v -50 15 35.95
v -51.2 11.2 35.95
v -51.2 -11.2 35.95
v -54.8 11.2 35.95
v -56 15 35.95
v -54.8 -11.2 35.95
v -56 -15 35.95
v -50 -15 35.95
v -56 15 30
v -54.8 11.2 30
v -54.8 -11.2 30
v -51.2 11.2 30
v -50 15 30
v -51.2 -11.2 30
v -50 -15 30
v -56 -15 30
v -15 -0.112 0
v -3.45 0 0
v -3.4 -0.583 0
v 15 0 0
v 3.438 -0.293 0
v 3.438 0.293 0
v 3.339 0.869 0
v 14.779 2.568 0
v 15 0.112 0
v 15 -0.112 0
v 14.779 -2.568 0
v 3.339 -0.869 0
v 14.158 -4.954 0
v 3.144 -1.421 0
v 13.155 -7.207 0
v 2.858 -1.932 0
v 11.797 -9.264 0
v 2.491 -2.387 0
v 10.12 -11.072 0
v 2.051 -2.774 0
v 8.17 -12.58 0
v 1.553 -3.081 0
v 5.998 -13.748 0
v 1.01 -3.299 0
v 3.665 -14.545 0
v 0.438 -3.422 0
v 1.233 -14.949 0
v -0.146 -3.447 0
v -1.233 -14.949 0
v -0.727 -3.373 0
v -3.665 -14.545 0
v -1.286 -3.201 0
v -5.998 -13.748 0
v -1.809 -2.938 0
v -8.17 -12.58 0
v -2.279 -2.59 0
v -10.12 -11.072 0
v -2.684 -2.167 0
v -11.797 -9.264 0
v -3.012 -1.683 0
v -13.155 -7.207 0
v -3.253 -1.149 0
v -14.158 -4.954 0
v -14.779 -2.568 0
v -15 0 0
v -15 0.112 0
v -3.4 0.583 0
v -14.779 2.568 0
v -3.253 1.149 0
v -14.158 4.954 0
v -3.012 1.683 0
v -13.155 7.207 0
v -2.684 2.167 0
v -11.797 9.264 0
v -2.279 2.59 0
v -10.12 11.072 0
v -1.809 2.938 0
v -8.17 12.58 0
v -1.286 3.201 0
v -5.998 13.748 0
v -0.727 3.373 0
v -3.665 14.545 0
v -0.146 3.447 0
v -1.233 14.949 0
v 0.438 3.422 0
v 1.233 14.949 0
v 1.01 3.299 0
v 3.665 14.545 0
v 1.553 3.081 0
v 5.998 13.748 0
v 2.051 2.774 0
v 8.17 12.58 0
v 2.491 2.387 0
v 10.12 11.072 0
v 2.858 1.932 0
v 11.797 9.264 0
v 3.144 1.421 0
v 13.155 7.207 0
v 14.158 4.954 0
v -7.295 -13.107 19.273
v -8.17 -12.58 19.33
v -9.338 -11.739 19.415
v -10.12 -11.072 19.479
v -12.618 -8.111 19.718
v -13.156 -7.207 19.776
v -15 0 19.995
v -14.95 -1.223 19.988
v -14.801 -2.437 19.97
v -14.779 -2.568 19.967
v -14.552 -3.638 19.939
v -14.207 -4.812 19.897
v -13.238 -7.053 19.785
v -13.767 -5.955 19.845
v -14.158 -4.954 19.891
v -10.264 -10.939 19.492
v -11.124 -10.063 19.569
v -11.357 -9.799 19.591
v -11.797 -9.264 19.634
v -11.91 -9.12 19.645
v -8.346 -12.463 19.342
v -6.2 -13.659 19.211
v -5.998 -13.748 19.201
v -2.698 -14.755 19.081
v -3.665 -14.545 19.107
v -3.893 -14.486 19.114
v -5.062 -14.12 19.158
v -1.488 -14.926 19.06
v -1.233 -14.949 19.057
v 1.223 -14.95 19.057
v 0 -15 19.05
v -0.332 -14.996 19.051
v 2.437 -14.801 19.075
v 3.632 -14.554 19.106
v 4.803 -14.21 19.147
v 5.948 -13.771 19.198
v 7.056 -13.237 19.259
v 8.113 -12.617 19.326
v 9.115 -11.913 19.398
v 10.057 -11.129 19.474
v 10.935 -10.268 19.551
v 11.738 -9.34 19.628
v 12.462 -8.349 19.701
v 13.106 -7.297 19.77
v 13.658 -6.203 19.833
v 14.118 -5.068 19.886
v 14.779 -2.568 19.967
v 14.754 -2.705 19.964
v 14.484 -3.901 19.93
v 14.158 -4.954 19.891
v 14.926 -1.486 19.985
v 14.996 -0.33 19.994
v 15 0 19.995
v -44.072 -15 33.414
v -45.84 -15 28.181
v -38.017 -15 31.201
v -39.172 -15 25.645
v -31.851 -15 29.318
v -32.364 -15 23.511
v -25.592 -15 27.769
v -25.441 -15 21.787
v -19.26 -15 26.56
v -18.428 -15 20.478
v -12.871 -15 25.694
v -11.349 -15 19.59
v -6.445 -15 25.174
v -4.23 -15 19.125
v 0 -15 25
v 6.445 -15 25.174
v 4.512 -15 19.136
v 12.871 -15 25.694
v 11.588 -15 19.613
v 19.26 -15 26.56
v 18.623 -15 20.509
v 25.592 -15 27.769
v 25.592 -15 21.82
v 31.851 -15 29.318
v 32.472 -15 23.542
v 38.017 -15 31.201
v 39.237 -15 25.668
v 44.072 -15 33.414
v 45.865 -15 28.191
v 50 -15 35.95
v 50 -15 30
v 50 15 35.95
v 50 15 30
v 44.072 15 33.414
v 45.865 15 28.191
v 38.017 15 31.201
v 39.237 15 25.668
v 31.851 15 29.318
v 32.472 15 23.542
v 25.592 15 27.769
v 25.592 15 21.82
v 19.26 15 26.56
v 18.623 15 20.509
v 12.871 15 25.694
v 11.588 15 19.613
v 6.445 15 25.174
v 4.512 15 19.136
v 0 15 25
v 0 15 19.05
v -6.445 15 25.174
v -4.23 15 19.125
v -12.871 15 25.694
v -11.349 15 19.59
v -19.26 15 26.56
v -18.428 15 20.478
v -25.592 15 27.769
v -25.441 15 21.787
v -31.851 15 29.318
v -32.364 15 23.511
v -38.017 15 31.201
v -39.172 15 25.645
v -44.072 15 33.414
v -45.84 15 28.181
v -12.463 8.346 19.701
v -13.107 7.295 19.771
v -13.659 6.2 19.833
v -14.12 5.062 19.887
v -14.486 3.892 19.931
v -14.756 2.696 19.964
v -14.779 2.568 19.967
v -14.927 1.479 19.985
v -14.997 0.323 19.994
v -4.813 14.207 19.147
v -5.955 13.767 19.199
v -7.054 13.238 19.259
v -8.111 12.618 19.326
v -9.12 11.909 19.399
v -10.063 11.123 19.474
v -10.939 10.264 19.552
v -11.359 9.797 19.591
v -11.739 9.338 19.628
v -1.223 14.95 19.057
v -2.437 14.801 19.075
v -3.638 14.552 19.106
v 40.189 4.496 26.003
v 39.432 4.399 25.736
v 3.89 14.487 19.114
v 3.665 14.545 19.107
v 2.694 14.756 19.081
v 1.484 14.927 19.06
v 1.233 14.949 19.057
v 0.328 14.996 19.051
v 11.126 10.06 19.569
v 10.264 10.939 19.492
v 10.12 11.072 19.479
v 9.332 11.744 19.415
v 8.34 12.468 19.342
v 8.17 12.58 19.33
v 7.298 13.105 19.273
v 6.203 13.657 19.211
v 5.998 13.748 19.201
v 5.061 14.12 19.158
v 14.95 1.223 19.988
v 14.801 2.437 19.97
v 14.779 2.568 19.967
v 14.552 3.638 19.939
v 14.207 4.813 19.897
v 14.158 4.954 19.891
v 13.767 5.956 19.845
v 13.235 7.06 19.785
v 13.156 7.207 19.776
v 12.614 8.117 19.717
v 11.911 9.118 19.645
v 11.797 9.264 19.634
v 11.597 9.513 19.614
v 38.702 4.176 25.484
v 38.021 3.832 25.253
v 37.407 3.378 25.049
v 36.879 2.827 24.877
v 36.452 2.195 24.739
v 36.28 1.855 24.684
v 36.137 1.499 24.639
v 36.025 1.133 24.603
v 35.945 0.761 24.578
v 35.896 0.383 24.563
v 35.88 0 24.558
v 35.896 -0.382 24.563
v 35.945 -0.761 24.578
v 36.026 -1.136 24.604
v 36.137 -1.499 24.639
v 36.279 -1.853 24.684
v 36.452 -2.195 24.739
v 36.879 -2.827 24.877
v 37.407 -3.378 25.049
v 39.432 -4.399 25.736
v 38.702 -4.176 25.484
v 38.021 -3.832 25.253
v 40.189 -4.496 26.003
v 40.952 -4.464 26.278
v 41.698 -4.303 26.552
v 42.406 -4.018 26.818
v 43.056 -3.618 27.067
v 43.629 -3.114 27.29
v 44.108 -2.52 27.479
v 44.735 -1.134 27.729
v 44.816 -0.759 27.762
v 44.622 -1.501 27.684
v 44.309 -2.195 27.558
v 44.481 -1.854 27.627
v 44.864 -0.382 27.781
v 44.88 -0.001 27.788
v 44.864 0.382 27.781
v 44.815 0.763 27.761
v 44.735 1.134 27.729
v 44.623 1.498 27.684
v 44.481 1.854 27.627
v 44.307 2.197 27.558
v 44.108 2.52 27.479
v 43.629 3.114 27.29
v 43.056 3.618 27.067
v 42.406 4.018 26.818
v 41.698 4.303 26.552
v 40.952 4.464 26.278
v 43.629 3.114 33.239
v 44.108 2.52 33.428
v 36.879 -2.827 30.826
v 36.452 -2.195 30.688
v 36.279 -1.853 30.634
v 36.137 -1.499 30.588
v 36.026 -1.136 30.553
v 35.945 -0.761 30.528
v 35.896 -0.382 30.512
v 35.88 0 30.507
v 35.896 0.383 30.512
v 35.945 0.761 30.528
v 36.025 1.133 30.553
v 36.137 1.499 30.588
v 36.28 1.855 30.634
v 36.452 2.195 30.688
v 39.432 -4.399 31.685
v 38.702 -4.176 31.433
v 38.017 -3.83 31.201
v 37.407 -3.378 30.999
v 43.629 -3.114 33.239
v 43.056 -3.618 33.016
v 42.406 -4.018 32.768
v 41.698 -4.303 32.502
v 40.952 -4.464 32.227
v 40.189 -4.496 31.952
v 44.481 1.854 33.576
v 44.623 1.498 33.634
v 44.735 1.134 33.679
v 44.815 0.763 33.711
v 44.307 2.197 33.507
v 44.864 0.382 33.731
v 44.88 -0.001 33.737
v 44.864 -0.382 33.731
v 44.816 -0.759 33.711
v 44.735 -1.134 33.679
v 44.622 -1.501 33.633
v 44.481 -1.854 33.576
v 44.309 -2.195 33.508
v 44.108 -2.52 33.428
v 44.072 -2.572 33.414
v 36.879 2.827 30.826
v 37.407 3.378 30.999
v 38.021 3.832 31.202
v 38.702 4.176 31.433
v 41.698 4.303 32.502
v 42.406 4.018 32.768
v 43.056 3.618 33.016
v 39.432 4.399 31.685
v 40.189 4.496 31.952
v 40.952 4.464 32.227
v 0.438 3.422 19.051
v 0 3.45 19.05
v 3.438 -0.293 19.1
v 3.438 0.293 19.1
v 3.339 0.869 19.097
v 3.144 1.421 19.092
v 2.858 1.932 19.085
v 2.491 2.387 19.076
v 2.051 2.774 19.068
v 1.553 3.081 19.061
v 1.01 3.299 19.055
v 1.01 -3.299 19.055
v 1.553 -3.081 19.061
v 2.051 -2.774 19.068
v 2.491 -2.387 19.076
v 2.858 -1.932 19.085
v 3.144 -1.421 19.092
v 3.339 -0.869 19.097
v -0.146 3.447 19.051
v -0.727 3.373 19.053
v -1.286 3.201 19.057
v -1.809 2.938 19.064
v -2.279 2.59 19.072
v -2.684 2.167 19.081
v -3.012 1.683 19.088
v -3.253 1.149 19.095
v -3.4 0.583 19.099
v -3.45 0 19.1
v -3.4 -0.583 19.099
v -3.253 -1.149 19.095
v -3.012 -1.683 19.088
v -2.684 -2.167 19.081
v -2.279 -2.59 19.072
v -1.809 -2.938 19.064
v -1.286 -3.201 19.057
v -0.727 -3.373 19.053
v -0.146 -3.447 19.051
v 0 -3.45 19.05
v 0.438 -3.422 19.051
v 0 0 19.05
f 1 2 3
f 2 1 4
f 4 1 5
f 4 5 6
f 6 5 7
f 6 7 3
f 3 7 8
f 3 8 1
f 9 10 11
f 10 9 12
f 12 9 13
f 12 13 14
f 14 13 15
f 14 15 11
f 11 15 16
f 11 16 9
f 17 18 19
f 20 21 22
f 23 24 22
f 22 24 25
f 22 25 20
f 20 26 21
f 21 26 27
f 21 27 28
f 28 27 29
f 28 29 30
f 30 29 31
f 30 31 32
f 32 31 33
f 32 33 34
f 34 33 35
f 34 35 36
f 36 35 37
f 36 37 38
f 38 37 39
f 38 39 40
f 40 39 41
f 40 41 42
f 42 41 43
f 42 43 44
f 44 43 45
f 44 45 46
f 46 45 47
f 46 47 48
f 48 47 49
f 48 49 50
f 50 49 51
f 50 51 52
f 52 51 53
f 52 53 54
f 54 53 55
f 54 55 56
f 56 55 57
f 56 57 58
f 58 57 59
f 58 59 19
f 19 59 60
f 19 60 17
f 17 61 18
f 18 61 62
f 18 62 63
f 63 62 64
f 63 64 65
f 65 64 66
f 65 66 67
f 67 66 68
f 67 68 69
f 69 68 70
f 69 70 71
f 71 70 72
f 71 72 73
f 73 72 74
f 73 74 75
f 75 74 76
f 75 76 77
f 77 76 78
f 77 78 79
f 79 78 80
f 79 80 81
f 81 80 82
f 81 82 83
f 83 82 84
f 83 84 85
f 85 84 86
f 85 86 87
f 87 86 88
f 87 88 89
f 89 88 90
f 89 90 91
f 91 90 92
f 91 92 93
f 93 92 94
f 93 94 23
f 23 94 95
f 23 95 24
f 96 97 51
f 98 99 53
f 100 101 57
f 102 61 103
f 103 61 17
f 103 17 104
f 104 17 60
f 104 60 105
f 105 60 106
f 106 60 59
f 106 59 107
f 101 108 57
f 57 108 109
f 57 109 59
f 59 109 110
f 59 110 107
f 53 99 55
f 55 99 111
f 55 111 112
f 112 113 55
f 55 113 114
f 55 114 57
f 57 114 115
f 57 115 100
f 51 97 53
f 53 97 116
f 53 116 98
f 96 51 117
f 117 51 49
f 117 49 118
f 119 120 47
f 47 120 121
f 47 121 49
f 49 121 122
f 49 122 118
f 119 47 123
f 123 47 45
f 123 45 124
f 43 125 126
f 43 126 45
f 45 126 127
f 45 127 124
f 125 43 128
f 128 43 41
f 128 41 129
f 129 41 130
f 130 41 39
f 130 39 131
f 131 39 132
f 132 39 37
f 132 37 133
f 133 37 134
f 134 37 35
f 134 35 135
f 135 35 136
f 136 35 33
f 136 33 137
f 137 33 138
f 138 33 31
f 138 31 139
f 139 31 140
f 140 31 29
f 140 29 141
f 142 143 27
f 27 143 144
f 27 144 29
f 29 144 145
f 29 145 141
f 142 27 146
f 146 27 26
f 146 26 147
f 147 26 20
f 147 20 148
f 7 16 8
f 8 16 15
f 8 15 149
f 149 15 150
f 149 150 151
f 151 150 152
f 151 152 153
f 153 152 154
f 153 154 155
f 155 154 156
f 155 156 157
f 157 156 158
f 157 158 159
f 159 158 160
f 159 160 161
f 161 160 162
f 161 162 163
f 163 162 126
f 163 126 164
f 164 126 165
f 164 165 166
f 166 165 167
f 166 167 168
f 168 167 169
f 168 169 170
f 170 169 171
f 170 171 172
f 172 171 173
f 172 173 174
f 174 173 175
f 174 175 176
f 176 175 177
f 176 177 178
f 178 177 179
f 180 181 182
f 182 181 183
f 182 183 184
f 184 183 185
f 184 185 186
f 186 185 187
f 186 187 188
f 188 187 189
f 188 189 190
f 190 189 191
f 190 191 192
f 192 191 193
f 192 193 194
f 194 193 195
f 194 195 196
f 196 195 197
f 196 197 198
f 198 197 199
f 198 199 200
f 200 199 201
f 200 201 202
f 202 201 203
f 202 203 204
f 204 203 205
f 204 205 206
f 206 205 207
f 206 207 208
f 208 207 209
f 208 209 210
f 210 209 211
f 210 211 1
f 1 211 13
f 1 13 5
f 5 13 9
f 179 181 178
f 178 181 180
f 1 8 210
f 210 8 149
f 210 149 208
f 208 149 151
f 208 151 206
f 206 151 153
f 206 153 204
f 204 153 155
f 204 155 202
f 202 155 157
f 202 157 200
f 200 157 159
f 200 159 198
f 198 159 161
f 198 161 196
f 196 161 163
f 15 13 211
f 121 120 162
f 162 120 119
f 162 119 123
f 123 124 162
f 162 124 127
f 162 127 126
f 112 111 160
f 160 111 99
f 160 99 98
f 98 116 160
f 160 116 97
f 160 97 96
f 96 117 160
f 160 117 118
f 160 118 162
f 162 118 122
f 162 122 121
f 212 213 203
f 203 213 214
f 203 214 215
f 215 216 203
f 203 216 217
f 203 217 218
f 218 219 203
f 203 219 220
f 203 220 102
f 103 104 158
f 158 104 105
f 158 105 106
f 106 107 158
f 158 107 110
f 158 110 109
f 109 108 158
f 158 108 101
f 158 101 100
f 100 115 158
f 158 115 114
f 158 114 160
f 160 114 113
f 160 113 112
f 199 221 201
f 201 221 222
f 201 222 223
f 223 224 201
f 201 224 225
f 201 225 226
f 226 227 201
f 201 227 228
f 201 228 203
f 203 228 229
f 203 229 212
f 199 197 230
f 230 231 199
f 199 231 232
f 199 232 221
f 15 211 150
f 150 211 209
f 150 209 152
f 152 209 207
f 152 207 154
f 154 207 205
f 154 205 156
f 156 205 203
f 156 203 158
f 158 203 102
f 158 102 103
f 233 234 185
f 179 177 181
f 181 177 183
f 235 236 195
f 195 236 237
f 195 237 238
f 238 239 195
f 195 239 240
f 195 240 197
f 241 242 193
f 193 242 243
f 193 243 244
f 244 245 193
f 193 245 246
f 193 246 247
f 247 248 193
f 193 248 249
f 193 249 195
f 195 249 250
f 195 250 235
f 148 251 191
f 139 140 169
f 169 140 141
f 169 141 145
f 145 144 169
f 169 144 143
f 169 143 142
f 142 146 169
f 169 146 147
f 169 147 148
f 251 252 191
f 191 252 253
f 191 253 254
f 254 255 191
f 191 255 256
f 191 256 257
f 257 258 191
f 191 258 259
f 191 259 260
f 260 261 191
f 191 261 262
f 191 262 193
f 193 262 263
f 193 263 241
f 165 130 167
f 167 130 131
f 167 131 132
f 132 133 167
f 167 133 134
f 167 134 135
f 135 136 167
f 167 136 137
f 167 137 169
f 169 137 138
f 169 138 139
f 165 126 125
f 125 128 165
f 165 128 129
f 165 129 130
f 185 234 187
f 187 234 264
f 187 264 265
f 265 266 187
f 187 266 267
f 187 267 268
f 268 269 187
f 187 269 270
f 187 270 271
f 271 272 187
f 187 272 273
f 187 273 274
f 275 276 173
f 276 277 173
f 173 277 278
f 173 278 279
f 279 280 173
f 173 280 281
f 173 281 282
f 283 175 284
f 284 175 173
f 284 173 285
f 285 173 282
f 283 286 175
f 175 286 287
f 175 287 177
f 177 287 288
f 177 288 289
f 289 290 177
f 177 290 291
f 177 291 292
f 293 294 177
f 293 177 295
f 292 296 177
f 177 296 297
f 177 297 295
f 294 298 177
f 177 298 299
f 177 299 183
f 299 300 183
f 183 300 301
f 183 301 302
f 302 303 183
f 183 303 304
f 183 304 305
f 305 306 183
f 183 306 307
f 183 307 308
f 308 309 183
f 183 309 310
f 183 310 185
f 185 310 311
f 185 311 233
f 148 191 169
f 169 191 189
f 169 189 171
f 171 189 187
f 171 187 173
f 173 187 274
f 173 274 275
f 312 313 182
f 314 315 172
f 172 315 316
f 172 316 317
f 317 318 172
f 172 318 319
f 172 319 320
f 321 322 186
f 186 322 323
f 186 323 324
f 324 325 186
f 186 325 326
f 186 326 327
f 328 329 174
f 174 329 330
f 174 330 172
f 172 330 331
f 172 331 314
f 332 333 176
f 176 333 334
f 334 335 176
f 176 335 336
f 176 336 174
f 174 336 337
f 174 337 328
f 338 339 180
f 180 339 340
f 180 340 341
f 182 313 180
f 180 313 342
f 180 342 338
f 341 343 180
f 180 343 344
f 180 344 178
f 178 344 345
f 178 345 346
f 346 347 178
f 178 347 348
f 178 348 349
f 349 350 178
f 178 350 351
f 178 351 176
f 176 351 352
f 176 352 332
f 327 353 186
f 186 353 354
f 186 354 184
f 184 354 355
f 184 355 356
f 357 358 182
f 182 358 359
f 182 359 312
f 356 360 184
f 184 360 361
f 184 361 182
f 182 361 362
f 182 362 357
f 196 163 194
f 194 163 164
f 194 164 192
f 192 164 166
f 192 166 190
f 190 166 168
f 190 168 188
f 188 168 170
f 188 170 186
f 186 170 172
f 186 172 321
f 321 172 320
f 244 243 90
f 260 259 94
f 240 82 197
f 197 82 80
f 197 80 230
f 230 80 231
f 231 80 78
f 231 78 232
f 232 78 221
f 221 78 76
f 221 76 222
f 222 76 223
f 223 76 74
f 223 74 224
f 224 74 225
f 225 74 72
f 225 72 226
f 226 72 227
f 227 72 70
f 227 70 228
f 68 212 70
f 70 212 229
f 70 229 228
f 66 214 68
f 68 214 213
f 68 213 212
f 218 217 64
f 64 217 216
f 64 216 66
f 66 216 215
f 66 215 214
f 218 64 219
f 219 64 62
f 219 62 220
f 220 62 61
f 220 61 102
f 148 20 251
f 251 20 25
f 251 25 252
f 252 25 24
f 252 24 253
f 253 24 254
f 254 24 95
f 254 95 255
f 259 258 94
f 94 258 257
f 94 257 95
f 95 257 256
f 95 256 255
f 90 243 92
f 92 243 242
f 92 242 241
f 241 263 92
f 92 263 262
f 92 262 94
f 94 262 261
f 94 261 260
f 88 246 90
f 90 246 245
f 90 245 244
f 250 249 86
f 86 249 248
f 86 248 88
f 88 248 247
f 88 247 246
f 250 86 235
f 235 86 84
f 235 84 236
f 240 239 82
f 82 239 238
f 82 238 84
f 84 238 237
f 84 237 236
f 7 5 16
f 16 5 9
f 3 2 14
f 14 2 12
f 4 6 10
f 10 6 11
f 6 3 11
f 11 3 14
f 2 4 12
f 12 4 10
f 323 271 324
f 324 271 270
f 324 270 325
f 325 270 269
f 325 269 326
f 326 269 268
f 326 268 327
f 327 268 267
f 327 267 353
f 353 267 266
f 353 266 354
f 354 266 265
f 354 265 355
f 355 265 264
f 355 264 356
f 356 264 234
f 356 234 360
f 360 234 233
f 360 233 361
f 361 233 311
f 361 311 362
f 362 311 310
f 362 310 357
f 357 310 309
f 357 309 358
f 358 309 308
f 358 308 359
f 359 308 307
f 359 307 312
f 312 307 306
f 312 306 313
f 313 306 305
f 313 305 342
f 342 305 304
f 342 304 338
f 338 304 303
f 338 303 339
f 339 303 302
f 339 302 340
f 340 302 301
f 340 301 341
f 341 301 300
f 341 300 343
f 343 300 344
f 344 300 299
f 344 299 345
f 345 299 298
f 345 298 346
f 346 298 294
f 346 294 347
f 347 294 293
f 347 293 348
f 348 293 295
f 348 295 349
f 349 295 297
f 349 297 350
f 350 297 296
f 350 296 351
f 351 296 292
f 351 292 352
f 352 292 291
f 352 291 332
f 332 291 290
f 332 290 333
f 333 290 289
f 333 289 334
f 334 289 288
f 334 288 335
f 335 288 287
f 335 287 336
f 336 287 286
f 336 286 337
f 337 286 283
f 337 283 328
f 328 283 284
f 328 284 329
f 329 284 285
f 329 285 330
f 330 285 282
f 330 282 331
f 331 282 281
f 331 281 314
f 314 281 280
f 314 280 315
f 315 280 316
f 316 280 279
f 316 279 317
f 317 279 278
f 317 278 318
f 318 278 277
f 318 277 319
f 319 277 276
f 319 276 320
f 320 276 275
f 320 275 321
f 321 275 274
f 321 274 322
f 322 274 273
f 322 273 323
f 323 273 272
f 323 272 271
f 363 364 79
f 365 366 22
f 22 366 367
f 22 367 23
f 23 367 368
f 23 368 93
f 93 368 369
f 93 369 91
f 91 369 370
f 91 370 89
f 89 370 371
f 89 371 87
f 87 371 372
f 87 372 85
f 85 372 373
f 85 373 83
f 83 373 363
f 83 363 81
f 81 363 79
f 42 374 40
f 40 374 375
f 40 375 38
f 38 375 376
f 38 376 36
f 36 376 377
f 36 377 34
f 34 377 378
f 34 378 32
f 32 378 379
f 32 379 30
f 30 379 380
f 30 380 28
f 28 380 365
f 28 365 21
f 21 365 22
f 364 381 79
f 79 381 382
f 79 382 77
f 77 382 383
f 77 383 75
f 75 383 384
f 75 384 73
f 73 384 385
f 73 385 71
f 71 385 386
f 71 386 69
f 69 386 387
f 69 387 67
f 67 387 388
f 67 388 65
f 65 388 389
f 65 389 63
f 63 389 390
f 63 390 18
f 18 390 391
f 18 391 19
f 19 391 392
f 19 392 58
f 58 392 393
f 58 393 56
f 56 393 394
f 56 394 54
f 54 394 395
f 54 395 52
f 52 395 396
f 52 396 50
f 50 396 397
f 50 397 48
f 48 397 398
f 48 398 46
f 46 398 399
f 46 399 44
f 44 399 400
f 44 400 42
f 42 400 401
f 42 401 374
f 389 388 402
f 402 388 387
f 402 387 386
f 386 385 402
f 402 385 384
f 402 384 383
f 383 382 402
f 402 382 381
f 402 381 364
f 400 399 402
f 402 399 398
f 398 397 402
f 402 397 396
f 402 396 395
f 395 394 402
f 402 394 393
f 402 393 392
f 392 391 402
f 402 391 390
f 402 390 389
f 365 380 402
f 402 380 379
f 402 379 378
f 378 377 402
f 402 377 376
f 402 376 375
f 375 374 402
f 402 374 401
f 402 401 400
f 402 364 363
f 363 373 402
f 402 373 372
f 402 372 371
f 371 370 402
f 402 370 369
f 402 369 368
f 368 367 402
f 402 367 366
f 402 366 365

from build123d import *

# Parameters (mm, degrees)
BOSS_EXTRUDE1_START         = -15
BOSS_EXTRUDE1_DEPTH         = 30
BOSS_EXTRUDE1_START_2       = -12.7
BOSS_EXTRUDE1_2_OUTLINE_W   = 6
BOSS_EXTRUDE1_2_OUTLINE_H   = 5.949524979
BOSS_EXTRUDE1_2_DEPTH       = 25.4
BOSS_EXTRUDE1_3_OUTLINE_R   = 15
BOSS_EXTRUDE1_3_OUTLINE_R_2 = 4.55
BOSS_EXTRUDE1_3_DEPTH       = 19.994560744
SKETCH4_W                   = 3.6
SKETCH4_H                   = 22.4
CUT_EXTRUDE1_DEPTH          = 6
BOSS_EXTRUDE2_REACH         = 70.216
BOSS_EXTRUDE2_END_RADIUS    = 119.634966004
SKETCH9_R                   = 6.57997386
SKETCH9_R_2                 = 3.45
SKETCH10_W                  = 5.949524979
SKETCH10_H                  = 2.3
BOSS_EXTRUDE3_DEPTH         = 6


with BuildPart() as part:
    # Boss-Extrude1: read off the stored shape, not the designer's step
    # Boss-Extrude1 outline → Boss-Extrude1 (new body)
    with BuildSketch(Plane(origin=(0, 0, 0), x_dir=(1, 0, 0), z_dir=(0, 1, 0)).offset(BOSS_EXTRUDE1_START)):
        with BuildLine():
            Line((-50, -30), (-50, -35.949524979))
            ThreePointArc((-50, -35.949524979), (-25.592440765, -27.769436157), (0, -25))
            ThreePointArc((0, -25), (25.592440765, -27.769436157), (50, -35.949524979))
            Line((50, -35.949524979), (50, -30))
            ThreePointArc((50, -30), (27.810549479, -22.327809439), (4.550000287, -19.13702996))
            ThreePointArc((4.550000287, -19.13702996), (2.275411741, -19.072115713), (0, -19.050475021))
            ThreePointArc((0, -19.050475021), (-25.592440765, -21.819911178), (-50, -30))
        make_face()
    extrude(amount=BOSS_EXTRUDE1_DEPTH)

    # Boss-Extrude1 2 outline → Boss-Extrude1 2 (add)
    with BuildSketch(Plane(origin=(0, 0, 0), x_dir=(1, 0, 0), z_dir=(0, 1, 0)).offset(BOSS_EXTRUDE1_START_2)):
        with Locations((-53, -32.97476249)):
            Rectangle(BOSS_EXTRUDE1_2_OUTLINE_W, BOSS_EXTRUDE1_2_OUTLINE_H)
    extrude(amount=BOSS_EXTRUDE1_2_DEPTH)

    # Boss-Extrude1 3 outline → Boss-Extrude1 3 (add)
    with BuildSketch(Plane.XY):
        Circle(BOSS_EXTRUDE1_3_OUTLINE_R)
        Circle(BOSS_EXTRUDE1_3_OUTLINE_R_2, mode=Mode.SUBTRACT)
    extrude(amount=BOSS_EXTRUDE1_3_DEPTH)

    # Sketch4 → Cut-Extrude1 (cut)
    with BuildSketch(Plane.XY.offset(35.949524979)):
        with Locations((-53, 0)):
            Rectangle(SKETCH4_W, SKETCH4_H)
    extrude(amount=-CUT_EXTRUDE1_DEPTH, mode=Mode.SUBTRACT)

    # Sketch8 → CBORE for M8 Hex Head Bolt1 (revolve, cut)
    with BuildSketch(Plane.YZ.offset(40.380081118)):
        Polygon((0, 0), (0, 35.949524979), (4.5, 35.949524979), (4.5, 5.68), (9.005, 5.68), (9.005, 0.025), (9.03, 0), align=None)
    revolve(axis=Axis((40.380081118, 0, -6.35), (0, 0, 1)), mode=Mode.SUBTRACT)

    # Boss-Extrude2: up to this cylinder (the profile starts outside it)
    boss_extrude2_end = Plane(origin=(0, 0, 138.685441025), z_dir=(0, -1, 0)) * Cylinder(BOSS_EXTRUDE2_END_RADIUS, 380.701932008, mode=Mode.PRIVATE)
    # Sketch9 → Boss-Extrude2 (add, up to the surface)
    with BuildSketch(Plane(origin=(0, 0, 0), x_dir=(-1, 0, 0), z_dir=(0, 0, -1)), mode=Mode.PRIVATE) as boss_extrude2_sk1:
        Circle(SKETCH9_R)
        Circle(SKETCH9_R_2, mode=Mode.SUBTRACT)
    boss_extrude2_tool1 = extrude(boss_extrude2_sk1.sketch, amount=-BOSS_EXTRUDE2_REACH, mode=Mode.PRIVATE) - boss_extrude2_end
    add(boss_extrude2_tool1.solids().sort_by_distance((6.393864, 0, 0))[0])

    # Sketch10 → Boss-Extrude3 (add)
    with BuildSketch(Plane.ZY.offset(50)):
        with Locations((32.97476249, 13.85)):
            Rectangle(SKETCH10_W, SKETCH10_H)
        with Locations((32.97476249, -13.85)):
            Rectangle(SKETCH10_W, SKETCH10_H)
    extrude(amount=BOSS_EXTRUDE3_DEPTH)


solid = part.part
